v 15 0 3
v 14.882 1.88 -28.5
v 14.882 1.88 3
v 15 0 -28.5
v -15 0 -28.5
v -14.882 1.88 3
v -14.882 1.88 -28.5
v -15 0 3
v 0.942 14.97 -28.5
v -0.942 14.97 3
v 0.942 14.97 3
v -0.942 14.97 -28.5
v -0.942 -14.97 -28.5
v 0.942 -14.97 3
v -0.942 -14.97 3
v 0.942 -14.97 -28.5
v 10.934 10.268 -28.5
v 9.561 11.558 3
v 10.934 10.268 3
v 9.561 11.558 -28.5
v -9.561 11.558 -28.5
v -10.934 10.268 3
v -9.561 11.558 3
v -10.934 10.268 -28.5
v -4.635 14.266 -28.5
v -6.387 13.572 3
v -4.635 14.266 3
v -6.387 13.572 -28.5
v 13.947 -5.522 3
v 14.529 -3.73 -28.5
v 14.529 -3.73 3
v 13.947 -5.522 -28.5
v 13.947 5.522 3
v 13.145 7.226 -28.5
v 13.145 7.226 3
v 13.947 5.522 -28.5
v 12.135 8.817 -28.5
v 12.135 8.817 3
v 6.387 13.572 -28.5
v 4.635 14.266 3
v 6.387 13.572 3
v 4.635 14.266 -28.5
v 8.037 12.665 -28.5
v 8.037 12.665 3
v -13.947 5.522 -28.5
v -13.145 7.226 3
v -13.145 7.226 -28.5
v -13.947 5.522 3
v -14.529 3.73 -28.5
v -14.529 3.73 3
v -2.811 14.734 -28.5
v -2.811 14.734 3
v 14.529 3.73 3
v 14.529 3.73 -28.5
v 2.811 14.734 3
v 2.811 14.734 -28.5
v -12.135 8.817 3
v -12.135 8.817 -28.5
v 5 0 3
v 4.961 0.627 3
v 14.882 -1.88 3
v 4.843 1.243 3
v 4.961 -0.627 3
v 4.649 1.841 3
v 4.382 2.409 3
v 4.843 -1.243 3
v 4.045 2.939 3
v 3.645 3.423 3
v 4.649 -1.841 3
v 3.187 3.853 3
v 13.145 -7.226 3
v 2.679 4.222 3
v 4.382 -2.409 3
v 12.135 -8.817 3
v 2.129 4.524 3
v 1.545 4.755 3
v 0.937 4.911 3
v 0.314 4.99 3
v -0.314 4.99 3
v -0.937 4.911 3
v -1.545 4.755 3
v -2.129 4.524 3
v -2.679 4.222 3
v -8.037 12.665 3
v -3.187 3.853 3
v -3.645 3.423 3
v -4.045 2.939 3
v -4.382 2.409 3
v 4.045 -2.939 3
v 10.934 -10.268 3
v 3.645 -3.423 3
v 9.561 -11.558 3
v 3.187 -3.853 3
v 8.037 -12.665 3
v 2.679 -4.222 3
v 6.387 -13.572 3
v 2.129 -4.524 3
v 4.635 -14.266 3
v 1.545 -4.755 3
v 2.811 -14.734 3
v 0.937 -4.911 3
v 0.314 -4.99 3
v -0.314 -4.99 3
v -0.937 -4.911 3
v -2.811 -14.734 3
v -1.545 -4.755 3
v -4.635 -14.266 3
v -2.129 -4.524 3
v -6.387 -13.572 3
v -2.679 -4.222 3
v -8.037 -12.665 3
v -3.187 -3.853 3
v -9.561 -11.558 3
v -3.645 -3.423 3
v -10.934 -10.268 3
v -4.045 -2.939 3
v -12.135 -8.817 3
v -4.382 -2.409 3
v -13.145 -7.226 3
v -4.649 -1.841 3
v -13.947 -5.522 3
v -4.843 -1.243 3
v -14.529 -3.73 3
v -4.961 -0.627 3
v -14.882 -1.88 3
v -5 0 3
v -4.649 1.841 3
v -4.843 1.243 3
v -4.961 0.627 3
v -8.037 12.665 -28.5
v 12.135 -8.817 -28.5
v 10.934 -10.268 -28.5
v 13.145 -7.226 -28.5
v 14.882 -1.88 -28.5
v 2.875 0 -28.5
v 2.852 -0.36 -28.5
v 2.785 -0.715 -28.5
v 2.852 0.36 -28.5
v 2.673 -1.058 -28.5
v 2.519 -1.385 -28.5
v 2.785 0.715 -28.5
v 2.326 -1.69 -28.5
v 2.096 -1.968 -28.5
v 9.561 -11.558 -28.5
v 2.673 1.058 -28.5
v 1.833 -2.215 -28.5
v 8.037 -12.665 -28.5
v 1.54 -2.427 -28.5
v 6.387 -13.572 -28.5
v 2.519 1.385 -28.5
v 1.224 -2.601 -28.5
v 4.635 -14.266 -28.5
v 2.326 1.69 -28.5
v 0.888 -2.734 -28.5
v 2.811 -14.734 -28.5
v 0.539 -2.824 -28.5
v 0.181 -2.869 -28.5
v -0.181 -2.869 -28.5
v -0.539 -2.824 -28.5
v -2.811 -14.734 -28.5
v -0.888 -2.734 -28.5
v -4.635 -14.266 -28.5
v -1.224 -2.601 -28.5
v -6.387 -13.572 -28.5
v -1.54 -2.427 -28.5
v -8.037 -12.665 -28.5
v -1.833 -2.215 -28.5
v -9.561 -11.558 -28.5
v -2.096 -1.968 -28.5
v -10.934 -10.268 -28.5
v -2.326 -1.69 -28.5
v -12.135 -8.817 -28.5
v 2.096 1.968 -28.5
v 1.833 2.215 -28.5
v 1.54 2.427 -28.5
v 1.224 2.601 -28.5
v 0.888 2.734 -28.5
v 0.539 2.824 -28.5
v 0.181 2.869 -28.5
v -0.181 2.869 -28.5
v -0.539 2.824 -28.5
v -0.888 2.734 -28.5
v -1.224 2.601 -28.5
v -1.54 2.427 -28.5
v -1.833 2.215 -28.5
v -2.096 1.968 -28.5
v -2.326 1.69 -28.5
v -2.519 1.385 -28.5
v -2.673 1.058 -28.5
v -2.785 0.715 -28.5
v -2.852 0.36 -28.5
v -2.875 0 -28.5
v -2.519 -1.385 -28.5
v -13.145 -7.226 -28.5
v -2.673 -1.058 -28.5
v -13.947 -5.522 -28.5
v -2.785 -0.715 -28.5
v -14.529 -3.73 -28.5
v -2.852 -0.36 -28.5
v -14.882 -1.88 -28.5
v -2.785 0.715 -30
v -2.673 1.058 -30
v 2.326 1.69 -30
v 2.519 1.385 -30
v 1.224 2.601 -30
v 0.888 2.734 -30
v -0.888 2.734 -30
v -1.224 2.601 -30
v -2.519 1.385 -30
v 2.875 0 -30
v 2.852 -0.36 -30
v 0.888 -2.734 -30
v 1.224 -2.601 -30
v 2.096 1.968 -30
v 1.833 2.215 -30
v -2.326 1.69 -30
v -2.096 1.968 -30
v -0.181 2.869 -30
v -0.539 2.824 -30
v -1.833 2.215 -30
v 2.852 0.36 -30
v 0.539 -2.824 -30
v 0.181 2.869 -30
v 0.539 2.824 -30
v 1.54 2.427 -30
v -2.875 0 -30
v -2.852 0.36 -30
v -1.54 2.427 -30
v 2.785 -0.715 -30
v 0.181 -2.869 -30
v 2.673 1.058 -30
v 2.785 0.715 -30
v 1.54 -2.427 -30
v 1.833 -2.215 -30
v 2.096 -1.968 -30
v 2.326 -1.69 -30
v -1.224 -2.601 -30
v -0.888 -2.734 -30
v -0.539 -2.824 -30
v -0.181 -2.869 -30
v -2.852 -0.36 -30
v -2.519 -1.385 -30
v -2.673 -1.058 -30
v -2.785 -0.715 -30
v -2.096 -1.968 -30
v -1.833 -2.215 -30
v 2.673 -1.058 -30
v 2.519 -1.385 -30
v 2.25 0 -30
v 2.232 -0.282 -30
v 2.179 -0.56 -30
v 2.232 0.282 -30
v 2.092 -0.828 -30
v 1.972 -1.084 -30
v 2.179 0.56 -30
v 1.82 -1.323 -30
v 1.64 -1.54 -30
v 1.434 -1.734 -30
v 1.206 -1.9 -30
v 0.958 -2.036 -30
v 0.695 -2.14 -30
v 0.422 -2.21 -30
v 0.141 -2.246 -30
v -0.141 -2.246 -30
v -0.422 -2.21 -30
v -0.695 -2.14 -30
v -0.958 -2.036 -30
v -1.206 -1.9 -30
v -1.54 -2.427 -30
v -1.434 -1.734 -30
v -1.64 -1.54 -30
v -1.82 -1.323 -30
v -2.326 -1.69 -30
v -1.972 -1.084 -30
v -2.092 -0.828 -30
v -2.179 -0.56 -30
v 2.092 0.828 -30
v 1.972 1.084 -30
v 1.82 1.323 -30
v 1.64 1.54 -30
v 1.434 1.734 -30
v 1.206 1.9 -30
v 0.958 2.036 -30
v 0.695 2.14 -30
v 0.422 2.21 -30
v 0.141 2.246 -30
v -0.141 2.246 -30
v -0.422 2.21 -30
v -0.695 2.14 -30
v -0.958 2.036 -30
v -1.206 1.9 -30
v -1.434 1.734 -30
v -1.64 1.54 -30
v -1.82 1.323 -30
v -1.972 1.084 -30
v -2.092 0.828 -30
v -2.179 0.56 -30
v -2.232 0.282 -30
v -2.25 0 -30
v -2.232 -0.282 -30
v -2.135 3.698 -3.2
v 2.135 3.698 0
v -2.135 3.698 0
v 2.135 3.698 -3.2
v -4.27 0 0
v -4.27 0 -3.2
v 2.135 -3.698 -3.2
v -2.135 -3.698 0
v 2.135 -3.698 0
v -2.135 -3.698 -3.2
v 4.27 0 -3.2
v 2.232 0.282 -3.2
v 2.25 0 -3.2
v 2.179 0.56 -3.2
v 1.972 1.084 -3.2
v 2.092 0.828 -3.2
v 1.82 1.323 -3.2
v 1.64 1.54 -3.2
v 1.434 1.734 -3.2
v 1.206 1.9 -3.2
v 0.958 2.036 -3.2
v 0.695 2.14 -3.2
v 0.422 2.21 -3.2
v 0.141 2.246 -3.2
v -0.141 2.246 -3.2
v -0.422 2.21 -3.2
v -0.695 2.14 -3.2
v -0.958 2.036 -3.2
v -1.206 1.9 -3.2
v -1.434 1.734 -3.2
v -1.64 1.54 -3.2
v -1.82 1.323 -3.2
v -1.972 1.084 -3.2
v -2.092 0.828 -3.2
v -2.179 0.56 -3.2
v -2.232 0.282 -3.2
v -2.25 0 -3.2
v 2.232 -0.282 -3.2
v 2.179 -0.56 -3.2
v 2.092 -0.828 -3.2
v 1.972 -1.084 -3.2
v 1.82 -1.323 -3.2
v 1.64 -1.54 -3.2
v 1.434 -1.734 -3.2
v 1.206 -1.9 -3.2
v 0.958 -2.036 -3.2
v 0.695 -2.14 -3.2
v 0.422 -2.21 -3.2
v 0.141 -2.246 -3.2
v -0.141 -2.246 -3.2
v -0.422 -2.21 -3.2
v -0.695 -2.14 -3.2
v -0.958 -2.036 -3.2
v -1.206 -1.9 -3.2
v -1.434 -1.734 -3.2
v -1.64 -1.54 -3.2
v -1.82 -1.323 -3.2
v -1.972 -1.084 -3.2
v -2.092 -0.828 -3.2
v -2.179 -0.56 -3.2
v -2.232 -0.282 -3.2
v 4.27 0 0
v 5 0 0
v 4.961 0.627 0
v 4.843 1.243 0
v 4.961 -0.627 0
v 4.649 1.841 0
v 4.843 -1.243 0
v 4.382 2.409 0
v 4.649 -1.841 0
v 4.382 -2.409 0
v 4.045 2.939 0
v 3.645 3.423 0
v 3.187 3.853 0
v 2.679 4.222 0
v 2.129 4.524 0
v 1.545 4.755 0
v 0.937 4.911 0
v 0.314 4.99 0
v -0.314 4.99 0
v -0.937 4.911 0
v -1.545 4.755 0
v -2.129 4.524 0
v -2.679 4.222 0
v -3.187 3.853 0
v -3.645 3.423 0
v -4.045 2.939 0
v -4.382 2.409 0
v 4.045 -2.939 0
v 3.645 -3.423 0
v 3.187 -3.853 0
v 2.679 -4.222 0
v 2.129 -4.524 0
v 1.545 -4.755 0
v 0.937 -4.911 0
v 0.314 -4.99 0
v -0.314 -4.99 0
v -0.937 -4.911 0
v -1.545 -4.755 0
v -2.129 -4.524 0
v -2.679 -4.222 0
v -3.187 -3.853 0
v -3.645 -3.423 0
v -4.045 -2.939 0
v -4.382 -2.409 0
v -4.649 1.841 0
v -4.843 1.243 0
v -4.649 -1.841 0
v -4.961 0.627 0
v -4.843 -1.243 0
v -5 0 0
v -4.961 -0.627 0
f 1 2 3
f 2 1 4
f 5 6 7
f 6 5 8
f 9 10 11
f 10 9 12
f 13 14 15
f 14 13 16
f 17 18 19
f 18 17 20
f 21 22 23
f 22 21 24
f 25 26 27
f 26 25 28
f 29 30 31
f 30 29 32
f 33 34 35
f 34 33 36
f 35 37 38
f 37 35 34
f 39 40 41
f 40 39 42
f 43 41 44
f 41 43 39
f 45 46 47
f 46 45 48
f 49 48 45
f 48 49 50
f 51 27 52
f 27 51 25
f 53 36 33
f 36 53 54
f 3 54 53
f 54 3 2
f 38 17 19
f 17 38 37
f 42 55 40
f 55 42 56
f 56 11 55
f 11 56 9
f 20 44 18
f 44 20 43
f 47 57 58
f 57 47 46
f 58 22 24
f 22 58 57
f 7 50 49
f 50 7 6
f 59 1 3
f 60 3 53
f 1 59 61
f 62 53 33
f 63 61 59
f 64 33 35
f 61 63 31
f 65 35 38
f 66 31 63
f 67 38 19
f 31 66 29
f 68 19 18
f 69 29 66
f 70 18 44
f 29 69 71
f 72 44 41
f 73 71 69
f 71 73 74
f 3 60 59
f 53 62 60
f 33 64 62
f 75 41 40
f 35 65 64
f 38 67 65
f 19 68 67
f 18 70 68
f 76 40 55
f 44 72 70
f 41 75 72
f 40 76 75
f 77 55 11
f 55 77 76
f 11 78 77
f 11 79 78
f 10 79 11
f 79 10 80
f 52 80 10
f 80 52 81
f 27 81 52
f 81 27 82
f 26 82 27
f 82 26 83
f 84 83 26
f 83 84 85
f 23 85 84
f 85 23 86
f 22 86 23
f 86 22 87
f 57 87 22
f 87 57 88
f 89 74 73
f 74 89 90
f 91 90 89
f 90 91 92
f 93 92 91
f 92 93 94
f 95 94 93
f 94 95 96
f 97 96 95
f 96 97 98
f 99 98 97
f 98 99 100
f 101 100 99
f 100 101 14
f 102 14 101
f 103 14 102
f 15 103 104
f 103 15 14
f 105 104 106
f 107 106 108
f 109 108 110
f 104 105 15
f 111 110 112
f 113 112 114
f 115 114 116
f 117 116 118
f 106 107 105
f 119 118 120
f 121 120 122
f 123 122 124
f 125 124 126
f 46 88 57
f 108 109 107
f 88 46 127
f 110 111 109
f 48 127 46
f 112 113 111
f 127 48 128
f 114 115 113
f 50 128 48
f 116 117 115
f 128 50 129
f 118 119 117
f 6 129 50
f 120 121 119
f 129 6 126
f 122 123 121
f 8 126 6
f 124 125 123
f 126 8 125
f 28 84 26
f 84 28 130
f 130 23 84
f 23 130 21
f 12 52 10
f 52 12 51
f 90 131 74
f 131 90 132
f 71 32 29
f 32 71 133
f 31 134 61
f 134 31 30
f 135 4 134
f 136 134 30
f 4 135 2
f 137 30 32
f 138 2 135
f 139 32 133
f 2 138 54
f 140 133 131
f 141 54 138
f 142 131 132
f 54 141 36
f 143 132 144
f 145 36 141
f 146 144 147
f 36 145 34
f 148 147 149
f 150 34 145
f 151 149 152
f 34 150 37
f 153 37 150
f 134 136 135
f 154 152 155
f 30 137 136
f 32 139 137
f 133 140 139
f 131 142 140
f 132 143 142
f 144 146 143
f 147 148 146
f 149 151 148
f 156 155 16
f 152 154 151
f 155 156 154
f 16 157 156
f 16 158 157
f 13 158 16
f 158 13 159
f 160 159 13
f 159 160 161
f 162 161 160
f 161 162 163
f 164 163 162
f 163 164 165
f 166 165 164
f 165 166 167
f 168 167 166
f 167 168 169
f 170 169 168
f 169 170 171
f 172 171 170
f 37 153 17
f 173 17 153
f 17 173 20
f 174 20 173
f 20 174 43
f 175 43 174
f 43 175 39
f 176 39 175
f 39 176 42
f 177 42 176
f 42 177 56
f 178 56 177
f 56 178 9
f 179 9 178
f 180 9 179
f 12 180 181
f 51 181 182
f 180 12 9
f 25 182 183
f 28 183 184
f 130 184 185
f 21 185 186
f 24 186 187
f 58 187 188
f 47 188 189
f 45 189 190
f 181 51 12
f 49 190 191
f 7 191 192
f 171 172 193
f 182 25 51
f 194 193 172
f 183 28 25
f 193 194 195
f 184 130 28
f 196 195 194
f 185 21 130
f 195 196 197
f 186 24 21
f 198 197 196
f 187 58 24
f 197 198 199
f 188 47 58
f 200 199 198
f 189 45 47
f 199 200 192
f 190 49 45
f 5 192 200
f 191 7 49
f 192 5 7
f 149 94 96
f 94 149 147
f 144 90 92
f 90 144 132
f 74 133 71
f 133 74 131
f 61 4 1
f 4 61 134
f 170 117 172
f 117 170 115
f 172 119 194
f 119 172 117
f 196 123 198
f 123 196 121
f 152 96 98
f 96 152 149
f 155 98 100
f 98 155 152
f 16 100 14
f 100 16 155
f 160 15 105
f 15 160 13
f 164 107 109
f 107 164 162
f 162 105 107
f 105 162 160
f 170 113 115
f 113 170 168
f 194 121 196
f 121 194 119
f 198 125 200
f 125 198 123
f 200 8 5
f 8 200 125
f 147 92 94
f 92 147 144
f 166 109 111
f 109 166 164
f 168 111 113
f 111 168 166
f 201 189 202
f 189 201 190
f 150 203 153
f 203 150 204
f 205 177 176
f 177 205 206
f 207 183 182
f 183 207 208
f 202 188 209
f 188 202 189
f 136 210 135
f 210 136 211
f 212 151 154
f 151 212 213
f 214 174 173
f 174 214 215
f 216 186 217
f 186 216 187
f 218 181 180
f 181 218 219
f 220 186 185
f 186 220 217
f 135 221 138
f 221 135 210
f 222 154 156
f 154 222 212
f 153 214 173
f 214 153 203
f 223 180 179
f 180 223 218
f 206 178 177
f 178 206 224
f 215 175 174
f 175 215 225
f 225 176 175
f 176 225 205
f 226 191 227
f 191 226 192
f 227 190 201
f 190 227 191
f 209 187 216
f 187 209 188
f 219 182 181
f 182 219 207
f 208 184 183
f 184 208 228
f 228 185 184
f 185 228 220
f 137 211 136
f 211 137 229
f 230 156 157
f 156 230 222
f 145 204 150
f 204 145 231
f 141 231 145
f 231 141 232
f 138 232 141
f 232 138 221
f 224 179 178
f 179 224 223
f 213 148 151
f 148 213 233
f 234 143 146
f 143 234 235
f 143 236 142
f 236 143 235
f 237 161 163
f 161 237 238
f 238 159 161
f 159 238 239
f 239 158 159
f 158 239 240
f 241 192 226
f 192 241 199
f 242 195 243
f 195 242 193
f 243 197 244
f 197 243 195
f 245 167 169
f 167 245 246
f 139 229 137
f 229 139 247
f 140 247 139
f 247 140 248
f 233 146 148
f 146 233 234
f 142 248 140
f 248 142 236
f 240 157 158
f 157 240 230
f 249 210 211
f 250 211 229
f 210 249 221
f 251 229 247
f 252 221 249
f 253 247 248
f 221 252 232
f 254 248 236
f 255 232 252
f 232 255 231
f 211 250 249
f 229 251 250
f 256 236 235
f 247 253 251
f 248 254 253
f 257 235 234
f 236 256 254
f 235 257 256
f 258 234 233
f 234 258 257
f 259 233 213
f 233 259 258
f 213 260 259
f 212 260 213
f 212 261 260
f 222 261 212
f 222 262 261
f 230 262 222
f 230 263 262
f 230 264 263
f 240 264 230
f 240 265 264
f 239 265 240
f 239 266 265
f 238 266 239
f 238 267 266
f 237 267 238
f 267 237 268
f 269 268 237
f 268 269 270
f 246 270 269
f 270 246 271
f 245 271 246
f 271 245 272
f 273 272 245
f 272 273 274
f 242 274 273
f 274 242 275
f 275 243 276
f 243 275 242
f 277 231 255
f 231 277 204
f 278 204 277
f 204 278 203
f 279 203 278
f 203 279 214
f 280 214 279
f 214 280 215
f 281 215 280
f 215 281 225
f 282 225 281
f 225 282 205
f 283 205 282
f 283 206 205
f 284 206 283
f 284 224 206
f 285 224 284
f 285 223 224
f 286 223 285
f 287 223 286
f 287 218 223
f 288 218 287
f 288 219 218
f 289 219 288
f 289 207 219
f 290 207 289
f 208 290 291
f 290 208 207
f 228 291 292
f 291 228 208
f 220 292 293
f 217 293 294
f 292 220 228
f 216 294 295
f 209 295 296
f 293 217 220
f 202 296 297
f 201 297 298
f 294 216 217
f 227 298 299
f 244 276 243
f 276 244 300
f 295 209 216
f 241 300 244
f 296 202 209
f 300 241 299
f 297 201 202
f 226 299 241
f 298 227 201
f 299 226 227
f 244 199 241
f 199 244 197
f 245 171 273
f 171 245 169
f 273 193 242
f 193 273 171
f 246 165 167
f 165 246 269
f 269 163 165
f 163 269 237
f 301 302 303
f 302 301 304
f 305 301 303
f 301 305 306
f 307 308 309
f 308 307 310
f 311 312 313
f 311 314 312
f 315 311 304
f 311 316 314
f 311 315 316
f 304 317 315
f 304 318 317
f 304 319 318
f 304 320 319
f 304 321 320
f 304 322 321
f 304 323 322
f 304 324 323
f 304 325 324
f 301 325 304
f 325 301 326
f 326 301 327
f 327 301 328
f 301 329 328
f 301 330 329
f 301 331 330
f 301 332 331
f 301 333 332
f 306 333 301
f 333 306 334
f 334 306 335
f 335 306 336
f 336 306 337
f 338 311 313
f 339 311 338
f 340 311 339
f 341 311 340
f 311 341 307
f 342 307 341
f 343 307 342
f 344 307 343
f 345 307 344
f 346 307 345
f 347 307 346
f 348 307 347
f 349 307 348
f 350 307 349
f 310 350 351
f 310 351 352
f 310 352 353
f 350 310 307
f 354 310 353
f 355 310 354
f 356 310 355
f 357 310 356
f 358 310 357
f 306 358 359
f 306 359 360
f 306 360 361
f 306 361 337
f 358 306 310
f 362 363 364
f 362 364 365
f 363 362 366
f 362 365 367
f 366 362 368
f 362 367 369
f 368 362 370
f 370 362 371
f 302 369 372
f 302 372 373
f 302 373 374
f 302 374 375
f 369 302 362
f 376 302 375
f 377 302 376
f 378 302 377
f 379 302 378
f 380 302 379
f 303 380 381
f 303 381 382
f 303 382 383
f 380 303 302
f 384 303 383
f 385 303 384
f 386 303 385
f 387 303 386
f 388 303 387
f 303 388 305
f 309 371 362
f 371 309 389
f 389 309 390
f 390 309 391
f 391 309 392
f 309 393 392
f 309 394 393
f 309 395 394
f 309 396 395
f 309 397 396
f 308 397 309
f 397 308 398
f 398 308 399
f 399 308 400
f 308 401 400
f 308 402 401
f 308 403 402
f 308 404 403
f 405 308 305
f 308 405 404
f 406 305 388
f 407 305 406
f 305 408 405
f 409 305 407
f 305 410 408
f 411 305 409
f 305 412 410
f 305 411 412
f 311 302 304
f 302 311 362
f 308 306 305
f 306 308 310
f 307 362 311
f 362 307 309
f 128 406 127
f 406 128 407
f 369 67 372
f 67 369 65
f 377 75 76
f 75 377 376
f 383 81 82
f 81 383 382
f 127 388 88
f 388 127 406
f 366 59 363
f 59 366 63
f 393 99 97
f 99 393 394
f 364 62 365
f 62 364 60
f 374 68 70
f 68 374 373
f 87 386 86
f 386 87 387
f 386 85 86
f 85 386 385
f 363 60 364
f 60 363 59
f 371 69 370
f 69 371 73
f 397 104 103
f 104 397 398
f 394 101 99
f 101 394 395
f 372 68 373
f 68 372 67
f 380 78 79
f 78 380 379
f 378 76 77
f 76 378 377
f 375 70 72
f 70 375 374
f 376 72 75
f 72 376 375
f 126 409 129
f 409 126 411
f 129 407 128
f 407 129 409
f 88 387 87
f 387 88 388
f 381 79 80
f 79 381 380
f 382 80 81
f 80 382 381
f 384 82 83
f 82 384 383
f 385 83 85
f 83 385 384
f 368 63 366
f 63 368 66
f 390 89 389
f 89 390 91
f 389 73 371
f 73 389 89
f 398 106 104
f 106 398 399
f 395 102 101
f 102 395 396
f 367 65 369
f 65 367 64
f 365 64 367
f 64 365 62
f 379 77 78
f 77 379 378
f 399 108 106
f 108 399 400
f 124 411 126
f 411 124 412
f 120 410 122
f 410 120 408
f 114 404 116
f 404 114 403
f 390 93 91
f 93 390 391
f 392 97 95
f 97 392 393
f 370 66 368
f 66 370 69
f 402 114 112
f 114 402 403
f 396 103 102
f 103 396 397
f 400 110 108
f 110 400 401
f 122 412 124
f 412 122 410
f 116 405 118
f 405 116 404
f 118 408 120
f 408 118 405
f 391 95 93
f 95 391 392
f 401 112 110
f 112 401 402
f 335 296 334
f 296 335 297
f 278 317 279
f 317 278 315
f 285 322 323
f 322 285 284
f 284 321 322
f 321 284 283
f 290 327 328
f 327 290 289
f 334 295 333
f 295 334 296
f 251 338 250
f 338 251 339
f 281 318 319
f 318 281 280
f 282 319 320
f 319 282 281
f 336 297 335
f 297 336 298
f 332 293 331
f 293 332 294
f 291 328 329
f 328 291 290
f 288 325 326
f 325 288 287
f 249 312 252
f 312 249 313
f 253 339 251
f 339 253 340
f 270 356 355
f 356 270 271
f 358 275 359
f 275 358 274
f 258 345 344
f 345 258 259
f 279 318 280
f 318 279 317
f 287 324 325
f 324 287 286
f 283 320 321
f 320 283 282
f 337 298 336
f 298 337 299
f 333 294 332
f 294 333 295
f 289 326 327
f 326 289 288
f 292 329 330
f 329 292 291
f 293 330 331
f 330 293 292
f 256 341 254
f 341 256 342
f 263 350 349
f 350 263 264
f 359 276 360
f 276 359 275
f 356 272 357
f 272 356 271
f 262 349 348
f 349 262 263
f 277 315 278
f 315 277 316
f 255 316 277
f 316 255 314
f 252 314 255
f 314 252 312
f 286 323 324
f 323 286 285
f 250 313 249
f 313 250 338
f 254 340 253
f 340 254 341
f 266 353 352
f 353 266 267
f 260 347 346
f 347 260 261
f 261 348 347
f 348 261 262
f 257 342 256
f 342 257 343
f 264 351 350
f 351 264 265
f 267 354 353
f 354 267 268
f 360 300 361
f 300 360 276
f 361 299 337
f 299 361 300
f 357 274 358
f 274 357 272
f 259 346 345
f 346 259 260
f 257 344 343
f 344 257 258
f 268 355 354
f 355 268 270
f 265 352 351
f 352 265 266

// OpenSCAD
$fn = 50;

difference() {
	union() {
		translate(v = [0, 0, -28.5]) {
			cylinder(h = 31.5, r = 15.0);
		}
		#translate(v = [0, 0, -30.0]) {
			cylinder(h = 30, r = 2.875);
		}
	}
	union() {
		translate(v = [0, 0, 0]) {
			rotate(a = [0, 0, 0]) {
				difference() {
					union() {
						translate(v = [0, 0, -3.2]) {
							linear_extrude(height = 3.2) {
								polygon(points = [[4.2698, 0.0], [2.1349000000000005, 3.697755269078796], [-2.134899999999999, 3.6977552690787965], [-4.2698, 5.228996902999369e-16], [-2.134900000000002, -3.6977552690787956], [2.1348999999999974, -3.697755269078798]]);
							}
						}
					}
					union();
				}
			}
		}
		#cylinder(h = 3, r = 5.0);
		#translate(v = [0, 0, -100.0]) {
			cylinder(h = 200, r = 2.25);
		}
	}
}
